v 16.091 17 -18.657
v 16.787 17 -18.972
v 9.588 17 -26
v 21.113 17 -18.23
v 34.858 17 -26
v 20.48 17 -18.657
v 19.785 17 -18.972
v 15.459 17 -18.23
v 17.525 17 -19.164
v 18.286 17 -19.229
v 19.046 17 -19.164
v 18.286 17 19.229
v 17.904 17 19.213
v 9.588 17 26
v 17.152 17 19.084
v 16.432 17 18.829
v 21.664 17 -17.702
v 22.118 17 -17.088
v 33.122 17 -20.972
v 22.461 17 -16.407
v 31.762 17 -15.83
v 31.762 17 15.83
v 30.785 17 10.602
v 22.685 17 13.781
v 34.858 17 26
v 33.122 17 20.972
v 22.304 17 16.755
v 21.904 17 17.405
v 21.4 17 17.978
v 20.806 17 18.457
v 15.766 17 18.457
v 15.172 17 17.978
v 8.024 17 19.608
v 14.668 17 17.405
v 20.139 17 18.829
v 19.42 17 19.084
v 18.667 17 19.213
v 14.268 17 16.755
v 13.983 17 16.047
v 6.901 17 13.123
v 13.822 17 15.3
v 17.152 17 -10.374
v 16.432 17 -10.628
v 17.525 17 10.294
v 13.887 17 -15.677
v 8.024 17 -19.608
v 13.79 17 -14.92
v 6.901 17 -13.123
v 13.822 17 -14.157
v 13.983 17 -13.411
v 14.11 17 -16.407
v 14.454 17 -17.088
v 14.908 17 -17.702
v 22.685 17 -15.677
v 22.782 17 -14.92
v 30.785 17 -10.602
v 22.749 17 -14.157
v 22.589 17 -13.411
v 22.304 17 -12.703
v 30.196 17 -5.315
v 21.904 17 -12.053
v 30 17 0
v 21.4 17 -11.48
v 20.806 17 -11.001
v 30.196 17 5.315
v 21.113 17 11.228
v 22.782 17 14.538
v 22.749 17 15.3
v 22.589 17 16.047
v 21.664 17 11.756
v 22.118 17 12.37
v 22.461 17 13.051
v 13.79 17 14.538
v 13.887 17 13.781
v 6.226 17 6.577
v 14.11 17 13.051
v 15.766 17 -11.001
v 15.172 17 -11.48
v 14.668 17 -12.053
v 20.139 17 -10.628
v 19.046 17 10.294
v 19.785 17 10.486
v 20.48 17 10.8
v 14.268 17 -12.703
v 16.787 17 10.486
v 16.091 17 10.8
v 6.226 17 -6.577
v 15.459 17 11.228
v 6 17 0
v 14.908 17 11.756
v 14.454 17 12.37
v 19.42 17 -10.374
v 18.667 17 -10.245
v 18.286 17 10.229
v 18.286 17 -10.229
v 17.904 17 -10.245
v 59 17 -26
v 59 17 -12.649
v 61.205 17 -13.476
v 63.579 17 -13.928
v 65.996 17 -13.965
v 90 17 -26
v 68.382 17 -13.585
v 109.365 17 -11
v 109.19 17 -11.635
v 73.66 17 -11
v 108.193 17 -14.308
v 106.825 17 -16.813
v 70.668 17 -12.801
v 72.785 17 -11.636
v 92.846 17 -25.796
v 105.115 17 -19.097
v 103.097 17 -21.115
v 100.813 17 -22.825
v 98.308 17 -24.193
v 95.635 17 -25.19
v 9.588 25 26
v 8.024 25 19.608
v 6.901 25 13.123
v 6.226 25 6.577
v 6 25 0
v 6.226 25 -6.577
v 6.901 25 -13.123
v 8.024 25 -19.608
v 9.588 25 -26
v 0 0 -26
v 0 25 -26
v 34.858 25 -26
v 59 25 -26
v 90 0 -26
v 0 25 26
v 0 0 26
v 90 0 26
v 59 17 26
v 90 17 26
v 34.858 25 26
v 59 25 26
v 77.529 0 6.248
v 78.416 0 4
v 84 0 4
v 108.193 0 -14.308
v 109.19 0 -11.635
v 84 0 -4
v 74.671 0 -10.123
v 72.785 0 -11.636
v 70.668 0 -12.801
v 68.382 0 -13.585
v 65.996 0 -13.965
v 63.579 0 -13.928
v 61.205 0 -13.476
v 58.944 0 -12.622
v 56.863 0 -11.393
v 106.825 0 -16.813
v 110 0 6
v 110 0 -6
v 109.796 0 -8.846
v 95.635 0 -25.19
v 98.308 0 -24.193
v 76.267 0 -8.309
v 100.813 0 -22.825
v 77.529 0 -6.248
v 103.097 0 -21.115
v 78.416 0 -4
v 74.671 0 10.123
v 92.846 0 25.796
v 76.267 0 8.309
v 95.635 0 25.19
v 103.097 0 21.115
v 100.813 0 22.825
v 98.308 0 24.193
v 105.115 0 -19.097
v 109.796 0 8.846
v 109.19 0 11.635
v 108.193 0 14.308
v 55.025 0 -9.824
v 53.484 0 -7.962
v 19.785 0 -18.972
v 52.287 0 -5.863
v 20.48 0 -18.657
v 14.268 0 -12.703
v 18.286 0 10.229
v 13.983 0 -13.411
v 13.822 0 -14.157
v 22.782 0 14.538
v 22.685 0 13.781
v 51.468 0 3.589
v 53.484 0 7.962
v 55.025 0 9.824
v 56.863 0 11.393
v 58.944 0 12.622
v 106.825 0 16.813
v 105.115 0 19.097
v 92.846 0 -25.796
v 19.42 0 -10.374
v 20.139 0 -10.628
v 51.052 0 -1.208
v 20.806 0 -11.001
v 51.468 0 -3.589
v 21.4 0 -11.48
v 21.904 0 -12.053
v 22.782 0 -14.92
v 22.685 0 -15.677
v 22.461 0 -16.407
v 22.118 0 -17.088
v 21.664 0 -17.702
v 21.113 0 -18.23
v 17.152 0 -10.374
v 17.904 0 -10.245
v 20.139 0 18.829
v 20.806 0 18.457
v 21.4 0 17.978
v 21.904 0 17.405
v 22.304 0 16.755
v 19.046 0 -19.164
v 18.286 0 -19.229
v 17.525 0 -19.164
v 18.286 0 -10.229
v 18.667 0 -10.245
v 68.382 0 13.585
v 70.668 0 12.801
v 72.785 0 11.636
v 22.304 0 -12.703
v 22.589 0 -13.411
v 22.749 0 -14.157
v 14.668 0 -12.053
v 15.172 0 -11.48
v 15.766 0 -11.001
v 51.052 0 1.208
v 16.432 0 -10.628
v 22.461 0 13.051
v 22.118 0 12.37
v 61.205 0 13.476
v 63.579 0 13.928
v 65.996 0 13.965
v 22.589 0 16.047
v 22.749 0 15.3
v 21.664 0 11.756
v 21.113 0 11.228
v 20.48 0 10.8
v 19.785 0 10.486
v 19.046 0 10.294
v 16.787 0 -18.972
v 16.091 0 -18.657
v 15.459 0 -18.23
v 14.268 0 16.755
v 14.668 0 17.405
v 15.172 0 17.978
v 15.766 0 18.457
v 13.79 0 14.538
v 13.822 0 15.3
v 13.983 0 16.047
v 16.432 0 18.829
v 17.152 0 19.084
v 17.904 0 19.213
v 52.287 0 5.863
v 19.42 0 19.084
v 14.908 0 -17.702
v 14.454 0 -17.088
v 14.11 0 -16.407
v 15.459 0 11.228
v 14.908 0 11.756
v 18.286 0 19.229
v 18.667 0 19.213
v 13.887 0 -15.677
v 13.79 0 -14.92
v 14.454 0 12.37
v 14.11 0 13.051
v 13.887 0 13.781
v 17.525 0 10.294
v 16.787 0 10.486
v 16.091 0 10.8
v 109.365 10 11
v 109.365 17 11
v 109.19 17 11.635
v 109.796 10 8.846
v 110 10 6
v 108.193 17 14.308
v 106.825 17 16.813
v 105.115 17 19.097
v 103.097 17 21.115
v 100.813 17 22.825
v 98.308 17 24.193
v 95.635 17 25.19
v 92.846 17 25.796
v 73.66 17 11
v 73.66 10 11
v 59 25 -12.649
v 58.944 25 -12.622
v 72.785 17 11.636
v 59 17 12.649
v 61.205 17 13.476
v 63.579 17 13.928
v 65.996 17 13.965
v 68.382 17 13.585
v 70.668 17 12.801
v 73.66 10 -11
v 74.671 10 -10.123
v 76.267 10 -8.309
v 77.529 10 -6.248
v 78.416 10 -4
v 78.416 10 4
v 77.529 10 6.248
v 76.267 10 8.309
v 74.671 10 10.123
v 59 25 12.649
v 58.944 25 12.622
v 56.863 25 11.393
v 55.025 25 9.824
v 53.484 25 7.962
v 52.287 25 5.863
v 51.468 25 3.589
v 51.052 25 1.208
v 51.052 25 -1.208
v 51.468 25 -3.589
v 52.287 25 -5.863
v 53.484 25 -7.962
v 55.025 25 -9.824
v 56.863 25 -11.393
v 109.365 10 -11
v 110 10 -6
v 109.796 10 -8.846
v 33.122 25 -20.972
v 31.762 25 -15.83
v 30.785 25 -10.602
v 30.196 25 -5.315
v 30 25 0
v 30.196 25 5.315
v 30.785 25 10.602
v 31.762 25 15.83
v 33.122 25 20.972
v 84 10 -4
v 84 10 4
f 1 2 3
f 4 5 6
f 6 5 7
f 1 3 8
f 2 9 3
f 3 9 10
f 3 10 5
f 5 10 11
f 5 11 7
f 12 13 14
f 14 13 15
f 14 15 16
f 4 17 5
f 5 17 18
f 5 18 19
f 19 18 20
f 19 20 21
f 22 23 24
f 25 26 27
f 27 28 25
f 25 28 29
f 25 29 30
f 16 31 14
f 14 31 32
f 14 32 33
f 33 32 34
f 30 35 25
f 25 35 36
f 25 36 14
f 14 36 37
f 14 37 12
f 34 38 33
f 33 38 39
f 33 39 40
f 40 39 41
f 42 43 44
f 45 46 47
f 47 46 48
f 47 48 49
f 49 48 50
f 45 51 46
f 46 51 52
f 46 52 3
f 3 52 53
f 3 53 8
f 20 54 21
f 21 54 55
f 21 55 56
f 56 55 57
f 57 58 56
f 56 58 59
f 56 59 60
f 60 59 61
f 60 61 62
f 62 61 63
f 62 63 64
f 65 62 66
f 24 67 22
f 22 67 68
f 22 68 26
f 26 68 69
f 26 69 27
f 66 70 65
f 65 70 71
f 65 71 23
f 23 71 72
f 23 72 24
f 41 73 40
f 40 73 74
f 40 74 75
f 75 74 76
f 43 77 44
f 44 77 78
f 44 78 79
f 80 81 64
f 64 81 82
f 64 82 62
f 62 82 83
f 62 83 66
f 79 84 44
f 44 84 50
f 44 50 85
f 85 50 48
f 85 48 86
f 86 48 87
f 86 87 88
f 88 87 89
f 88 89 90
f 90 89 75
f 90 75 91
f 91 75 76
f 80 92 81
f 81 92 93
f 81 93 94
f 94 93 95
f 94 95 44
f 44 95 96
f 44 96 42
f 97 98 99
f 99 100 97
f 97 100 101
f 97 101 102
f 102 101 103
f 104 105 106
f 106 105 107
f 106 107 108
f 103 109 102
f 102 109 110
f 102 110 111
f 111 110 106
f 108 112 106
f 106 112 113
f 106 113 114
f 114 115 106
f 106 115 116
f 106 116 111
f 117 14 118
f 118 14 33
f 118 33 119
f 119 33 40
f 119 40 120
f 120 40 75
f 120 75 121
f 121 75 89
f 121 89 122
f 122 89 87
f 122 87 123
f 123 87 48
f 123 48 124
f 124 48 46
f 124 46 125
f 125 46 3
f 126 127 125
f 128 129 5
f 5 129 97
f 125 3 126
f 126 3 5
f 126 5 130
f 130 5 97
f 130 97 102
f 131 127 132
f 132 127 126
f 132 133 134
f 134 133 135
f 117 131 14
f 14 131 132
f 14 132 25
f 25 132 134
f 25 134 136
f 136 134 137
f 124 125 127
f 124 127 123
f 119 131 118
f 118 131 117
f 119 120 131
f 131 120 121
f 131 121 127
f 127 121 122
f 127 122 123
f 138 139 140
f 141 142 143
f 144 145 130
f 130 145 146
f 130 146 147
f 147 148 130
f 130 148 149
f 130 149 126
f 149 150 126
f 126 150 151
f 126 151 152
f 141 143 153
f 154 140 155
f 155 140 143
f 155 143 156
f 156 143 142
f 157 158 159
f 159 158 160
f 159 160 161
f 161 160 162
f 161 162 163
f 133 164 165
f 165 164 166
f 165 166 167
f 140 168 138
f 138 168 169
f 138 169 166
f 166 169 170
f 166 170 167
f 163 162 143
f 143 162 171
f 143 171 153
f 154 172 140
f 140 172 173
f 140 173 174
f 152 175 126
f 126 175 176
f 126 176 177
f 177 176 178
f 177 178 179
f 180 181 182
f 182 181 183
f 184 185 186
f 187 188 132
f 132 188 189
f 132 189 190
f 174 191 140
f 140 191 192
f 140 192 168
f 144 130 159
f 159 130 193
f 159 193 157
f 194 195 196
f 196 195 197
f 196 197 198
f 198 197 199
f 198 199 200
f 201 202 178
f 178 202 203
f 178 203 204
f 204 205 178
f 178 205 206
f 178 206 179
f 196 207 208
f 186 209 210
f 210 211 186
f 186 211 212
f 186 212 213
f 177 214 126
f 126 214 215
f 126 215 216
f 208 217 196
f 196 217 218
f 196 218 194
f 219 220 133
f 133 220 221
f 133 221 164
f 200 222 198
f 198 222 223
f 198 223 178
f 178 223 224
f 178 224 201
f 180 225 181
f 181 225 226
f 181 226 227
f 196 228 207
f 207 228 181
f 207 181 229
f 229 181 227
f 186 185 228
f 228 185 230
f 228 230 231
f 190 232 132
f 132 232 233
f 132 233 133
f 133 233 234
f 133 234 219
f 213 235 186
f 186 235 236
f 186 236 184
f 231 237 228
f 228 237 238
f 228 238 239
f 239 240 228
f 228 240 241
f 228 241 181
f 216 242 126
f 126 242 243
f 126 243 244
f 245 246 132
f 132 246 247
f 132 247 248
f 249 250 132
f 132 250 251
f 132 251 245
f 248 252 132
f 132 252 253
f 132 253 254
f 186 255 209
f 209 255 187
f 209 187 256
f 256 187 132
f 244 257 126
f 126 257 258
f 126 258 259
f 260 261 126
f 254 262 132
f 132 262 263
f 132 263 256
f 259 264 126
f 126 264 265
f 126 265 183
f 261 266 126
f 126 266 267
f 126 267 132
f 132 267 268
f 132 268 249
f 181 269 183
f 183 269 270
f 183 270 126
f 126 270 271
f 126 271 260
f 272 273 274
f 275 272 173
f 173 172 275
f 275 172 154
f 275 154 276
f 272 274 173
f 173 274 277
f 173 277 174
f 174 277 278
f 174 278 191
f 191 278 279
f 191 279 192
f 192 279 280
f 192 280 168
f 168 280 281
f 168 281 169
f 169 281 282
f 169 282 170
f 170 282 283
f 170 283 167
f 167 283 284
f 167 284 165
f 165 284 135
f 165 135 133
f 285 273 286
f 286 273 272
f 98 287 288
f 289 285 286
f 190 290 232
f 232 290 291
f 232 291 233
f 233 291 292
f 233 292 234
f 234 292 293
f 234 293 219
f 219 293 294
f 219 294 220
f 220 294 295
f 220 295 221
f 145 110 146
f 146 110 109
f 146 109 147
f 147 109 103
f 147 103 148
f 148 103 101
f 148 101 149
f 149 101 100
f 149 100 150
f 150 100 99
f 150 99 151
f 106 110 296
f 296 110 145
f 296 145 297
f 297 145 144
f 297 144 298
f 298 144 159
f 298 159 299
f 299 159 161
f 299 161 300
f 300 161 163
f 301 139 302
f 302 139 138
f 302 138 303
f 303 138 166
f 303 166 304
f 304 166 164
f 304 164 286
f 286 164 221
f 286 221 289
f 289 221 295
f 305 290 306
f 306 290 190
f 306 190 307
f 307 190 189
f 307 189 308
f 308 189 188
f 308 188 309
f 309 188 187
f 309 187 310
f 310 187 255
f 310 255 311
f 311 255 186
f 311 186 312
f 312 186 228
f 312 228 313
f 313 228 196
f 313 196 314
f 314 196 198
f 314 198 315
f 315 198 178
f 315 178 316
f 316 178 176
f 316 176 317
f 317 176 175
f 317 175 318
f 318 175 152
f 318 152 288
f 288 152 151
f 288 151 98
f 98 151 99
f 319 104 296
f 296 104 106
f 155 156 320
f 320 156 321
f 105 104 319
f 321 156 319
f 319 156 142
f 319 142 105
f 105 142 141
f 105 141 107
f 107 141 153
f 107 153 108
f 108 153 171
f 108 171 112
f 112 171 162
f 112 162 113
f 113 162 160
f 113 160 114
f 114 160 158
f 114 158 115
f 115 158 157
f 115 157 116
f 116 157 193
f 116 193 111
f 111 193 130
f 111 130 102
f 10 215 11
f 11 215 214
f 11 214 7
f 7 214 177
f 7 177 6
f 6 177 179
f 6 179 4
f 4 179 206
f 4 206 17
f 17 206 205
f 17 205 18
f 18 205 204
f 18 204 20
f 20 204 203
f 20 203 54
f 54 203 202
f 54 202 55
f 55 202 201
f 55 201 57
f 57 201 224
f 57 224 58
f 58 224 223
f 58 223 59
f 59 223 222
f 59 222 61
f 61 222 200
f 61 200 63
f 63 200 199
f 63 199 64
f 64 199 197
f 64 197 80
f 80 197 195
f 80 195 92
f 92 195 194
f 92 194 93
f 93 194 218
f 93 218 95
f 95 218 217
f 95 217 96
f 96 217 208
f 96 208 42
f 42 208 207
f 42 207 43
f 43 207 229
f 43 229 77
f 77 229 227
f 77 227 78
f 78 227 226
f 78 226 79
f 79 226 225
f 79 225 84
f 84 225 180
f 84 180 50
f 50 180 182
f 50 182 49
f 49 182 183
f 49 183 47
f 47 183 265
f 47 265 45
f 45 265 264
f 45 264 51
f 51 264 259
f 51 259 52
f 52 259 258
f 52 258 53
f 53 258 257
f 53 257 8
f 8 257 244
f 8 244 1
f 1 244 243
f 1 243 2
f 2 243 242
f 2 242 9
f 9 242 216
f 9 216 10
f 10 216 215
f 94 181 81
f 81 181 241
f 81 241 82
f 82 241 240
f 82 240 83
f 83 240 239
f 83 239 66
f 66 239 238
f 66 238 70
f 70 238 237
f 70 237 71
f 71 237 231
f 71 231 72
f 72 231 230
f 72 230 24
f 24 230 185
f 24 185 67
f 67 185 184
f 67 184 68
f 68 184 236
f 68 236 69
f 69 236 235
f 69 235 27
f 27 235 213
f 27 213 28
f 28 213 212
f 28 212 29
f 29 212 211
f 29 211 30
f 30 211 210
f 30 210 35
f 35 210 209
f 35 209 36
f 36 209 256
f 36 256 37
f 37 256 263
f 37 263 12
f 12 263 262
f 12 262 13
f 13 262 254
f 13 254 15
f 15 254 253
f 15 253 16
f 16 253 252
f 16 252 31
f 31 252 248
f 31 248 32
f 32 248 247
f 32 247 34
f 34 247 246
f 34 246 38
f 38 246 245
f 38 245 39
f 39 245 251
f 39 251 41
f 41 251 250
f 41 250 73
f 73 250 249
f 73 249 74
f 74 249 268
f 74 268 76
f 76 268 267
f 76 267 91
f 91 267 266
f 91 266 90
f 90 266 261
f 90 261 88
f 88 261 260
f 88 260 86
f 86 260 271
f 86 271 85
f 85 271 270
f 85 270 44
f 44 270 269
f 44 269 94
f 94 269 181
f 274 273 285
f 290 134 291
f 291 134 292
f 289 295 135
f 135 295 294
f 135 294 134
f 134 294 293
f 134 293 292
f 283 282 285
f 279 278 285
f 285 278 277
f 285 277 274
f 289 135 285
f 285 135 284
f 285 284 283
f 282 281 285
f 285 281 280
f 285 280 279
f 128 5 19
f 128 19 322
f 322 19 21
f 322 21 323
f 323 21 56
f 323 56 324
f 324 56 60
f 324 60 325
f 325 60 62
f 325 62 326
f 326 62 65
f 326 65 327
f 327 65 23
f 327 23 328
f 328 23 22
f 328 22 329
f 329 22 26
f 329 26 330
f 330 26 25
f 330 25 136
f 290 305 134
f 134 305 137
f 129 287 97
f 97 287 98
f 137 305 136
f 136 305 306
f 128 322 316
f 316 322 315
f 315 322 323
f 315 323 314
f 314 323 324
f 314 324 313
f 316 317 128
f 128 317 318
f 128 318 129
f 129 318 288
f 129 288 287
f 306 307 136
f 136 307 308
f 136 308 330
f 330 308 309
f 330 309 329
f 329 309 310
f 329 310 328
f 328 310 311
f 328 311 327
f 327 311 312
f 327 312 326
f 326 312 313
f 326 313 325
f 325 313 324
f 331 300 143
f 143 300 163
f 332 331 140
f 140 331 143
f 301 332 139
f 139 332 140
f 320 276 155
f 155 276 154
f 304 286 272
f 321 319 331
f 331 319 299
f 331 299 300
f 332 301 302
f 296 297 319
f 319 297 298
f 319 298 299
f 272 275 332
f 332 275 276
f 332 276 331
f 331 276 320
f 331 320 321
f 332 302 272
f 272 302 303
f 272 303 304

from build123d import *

# Parameters (mm, degrees)
BOSS_EXTRUDE1_DEPTH = 25
SKETCH1_3_R         = 4.5
BOSS_EXTRUDE2_DEPTH = 17
BOSS_EXTRUDE3_DEPTH = 25
BOSS_EXTRUDE4_DEPTH = 10


with BuildPart() as part:
    # Sketch1 → Boss-Extrude1 (new body)
    with BuildSketch(Plane(origin=(0, 0, 0), x_dir=(1, 0, 0), z_dir=(0, 1, 0))):
        with BuildLine():
            Line((0, 26), (0, -26))
            Line((0, -26), (9.587879583, -26))
            ThreePointArc((9.587879583, -26), (6, 0), (9.587879583, 26))
            Line((9.587879583, 26), (0, 26))
        make_face()
    extrude(amount=BOSS_EXTRUDE1_DEPTH)

    # Sketch1<3> → Boss-Extrude2 (add)
    with BuildSketch(Plane(origin=(0, 0, 0), x_dir=(1, 0, 0), z_dir=(0, 1, 0))):
        with BuildLine():
            ThreePointArc((9.587879583, 26), (6, 0), (9.587879583, -26))
            Line((9.587879583, -26), (90, -26))
            ThreePointArc((90, -26), (102.247448714, -21.811388301), (109.364916731, -11))
            Line((109.364916731, -11), (73.660254038, -11))
            ThreePointArc((73.660254038, -11), (51, 0), (73.660254038, 11))
            Line((73.660254038, 11), (109.364916731, 11))
            ThreePointArc((109.364916731, 11), (102.247448714, 21.811388301), (90, 26))
            Line((90, 26), (9.587879583, 26))
        make_face()
        with Locations((18.285849122, -14.728915195)):
            Circle(SKETCH1_3_R, mode=Mode.SUBTRACT)
        with Locations((18.285849122, 14.728915195)):
            Circle(SKETCH1_3_R, mode=Mode.SUBTRACT)
    extrude(amount=BOSS_EXTRUDE2_DEPTH)

    # Sketch1<4> → Boss-Extrude3 (add)
    with BuildSketch(Plane(origin=(0, 0, 0), x_dir=(1, 0, 0), z_dir=(0, 1, 0))):
        with BuildLine():
            ThreePointArc((34.858358674, 26), (30, 0), (34.858358674, -26))
            Line((34.858358674, -26), (59, -26))
            Line((59, -26), (59, -12.649110641))
            ThreePointArc((59, -12.649110641), (51, 0), (59, 12.649110641))
            Line((59, 12.649110641), (59, 26))
            Line((59, 26), (34.858358674, 26))
        make_face()
    extrude(amount=BOSS_EXTRUDE3_DEPTH)

    # Sketch1<5> → Boss-Extrude4 (add)
    with BuildSketch(Plane(origin=(0, 0, 0), x_dir=(1, 0, 0), z_dir=(0, 1, 0))):
        with BuildLine():
            Line((73.660254038, -11), (109.364916731, -11))
            ThreePointArc((109.364916731, -11), (109.840593925, -8.52008585), (110, -6))
            Line((110, -6), (110, 6))
            ThreePointArc((110, 6), (109.840593925, 8.52008585), (109.364916731, 11))
            Line((109.364916731, 11), (73.660254038, 11))
            ThreePointArc((73.660254038, 11), (76.579928765, 7.86798893), (78.416407865, 4))
            Line((78.416407865, 4), (84, 4))
            Line((84, 4), (84, -4))
            Line((84, -4), (78.416407865, -4))
            ThreePointArc((78.416407865, -4), (76.579928765, -7.86798893), (73.660254038, -11))
        make_face()
    extrude(amount=BOSS_EXTRUDE4_DEPTH)


solid = part.part
